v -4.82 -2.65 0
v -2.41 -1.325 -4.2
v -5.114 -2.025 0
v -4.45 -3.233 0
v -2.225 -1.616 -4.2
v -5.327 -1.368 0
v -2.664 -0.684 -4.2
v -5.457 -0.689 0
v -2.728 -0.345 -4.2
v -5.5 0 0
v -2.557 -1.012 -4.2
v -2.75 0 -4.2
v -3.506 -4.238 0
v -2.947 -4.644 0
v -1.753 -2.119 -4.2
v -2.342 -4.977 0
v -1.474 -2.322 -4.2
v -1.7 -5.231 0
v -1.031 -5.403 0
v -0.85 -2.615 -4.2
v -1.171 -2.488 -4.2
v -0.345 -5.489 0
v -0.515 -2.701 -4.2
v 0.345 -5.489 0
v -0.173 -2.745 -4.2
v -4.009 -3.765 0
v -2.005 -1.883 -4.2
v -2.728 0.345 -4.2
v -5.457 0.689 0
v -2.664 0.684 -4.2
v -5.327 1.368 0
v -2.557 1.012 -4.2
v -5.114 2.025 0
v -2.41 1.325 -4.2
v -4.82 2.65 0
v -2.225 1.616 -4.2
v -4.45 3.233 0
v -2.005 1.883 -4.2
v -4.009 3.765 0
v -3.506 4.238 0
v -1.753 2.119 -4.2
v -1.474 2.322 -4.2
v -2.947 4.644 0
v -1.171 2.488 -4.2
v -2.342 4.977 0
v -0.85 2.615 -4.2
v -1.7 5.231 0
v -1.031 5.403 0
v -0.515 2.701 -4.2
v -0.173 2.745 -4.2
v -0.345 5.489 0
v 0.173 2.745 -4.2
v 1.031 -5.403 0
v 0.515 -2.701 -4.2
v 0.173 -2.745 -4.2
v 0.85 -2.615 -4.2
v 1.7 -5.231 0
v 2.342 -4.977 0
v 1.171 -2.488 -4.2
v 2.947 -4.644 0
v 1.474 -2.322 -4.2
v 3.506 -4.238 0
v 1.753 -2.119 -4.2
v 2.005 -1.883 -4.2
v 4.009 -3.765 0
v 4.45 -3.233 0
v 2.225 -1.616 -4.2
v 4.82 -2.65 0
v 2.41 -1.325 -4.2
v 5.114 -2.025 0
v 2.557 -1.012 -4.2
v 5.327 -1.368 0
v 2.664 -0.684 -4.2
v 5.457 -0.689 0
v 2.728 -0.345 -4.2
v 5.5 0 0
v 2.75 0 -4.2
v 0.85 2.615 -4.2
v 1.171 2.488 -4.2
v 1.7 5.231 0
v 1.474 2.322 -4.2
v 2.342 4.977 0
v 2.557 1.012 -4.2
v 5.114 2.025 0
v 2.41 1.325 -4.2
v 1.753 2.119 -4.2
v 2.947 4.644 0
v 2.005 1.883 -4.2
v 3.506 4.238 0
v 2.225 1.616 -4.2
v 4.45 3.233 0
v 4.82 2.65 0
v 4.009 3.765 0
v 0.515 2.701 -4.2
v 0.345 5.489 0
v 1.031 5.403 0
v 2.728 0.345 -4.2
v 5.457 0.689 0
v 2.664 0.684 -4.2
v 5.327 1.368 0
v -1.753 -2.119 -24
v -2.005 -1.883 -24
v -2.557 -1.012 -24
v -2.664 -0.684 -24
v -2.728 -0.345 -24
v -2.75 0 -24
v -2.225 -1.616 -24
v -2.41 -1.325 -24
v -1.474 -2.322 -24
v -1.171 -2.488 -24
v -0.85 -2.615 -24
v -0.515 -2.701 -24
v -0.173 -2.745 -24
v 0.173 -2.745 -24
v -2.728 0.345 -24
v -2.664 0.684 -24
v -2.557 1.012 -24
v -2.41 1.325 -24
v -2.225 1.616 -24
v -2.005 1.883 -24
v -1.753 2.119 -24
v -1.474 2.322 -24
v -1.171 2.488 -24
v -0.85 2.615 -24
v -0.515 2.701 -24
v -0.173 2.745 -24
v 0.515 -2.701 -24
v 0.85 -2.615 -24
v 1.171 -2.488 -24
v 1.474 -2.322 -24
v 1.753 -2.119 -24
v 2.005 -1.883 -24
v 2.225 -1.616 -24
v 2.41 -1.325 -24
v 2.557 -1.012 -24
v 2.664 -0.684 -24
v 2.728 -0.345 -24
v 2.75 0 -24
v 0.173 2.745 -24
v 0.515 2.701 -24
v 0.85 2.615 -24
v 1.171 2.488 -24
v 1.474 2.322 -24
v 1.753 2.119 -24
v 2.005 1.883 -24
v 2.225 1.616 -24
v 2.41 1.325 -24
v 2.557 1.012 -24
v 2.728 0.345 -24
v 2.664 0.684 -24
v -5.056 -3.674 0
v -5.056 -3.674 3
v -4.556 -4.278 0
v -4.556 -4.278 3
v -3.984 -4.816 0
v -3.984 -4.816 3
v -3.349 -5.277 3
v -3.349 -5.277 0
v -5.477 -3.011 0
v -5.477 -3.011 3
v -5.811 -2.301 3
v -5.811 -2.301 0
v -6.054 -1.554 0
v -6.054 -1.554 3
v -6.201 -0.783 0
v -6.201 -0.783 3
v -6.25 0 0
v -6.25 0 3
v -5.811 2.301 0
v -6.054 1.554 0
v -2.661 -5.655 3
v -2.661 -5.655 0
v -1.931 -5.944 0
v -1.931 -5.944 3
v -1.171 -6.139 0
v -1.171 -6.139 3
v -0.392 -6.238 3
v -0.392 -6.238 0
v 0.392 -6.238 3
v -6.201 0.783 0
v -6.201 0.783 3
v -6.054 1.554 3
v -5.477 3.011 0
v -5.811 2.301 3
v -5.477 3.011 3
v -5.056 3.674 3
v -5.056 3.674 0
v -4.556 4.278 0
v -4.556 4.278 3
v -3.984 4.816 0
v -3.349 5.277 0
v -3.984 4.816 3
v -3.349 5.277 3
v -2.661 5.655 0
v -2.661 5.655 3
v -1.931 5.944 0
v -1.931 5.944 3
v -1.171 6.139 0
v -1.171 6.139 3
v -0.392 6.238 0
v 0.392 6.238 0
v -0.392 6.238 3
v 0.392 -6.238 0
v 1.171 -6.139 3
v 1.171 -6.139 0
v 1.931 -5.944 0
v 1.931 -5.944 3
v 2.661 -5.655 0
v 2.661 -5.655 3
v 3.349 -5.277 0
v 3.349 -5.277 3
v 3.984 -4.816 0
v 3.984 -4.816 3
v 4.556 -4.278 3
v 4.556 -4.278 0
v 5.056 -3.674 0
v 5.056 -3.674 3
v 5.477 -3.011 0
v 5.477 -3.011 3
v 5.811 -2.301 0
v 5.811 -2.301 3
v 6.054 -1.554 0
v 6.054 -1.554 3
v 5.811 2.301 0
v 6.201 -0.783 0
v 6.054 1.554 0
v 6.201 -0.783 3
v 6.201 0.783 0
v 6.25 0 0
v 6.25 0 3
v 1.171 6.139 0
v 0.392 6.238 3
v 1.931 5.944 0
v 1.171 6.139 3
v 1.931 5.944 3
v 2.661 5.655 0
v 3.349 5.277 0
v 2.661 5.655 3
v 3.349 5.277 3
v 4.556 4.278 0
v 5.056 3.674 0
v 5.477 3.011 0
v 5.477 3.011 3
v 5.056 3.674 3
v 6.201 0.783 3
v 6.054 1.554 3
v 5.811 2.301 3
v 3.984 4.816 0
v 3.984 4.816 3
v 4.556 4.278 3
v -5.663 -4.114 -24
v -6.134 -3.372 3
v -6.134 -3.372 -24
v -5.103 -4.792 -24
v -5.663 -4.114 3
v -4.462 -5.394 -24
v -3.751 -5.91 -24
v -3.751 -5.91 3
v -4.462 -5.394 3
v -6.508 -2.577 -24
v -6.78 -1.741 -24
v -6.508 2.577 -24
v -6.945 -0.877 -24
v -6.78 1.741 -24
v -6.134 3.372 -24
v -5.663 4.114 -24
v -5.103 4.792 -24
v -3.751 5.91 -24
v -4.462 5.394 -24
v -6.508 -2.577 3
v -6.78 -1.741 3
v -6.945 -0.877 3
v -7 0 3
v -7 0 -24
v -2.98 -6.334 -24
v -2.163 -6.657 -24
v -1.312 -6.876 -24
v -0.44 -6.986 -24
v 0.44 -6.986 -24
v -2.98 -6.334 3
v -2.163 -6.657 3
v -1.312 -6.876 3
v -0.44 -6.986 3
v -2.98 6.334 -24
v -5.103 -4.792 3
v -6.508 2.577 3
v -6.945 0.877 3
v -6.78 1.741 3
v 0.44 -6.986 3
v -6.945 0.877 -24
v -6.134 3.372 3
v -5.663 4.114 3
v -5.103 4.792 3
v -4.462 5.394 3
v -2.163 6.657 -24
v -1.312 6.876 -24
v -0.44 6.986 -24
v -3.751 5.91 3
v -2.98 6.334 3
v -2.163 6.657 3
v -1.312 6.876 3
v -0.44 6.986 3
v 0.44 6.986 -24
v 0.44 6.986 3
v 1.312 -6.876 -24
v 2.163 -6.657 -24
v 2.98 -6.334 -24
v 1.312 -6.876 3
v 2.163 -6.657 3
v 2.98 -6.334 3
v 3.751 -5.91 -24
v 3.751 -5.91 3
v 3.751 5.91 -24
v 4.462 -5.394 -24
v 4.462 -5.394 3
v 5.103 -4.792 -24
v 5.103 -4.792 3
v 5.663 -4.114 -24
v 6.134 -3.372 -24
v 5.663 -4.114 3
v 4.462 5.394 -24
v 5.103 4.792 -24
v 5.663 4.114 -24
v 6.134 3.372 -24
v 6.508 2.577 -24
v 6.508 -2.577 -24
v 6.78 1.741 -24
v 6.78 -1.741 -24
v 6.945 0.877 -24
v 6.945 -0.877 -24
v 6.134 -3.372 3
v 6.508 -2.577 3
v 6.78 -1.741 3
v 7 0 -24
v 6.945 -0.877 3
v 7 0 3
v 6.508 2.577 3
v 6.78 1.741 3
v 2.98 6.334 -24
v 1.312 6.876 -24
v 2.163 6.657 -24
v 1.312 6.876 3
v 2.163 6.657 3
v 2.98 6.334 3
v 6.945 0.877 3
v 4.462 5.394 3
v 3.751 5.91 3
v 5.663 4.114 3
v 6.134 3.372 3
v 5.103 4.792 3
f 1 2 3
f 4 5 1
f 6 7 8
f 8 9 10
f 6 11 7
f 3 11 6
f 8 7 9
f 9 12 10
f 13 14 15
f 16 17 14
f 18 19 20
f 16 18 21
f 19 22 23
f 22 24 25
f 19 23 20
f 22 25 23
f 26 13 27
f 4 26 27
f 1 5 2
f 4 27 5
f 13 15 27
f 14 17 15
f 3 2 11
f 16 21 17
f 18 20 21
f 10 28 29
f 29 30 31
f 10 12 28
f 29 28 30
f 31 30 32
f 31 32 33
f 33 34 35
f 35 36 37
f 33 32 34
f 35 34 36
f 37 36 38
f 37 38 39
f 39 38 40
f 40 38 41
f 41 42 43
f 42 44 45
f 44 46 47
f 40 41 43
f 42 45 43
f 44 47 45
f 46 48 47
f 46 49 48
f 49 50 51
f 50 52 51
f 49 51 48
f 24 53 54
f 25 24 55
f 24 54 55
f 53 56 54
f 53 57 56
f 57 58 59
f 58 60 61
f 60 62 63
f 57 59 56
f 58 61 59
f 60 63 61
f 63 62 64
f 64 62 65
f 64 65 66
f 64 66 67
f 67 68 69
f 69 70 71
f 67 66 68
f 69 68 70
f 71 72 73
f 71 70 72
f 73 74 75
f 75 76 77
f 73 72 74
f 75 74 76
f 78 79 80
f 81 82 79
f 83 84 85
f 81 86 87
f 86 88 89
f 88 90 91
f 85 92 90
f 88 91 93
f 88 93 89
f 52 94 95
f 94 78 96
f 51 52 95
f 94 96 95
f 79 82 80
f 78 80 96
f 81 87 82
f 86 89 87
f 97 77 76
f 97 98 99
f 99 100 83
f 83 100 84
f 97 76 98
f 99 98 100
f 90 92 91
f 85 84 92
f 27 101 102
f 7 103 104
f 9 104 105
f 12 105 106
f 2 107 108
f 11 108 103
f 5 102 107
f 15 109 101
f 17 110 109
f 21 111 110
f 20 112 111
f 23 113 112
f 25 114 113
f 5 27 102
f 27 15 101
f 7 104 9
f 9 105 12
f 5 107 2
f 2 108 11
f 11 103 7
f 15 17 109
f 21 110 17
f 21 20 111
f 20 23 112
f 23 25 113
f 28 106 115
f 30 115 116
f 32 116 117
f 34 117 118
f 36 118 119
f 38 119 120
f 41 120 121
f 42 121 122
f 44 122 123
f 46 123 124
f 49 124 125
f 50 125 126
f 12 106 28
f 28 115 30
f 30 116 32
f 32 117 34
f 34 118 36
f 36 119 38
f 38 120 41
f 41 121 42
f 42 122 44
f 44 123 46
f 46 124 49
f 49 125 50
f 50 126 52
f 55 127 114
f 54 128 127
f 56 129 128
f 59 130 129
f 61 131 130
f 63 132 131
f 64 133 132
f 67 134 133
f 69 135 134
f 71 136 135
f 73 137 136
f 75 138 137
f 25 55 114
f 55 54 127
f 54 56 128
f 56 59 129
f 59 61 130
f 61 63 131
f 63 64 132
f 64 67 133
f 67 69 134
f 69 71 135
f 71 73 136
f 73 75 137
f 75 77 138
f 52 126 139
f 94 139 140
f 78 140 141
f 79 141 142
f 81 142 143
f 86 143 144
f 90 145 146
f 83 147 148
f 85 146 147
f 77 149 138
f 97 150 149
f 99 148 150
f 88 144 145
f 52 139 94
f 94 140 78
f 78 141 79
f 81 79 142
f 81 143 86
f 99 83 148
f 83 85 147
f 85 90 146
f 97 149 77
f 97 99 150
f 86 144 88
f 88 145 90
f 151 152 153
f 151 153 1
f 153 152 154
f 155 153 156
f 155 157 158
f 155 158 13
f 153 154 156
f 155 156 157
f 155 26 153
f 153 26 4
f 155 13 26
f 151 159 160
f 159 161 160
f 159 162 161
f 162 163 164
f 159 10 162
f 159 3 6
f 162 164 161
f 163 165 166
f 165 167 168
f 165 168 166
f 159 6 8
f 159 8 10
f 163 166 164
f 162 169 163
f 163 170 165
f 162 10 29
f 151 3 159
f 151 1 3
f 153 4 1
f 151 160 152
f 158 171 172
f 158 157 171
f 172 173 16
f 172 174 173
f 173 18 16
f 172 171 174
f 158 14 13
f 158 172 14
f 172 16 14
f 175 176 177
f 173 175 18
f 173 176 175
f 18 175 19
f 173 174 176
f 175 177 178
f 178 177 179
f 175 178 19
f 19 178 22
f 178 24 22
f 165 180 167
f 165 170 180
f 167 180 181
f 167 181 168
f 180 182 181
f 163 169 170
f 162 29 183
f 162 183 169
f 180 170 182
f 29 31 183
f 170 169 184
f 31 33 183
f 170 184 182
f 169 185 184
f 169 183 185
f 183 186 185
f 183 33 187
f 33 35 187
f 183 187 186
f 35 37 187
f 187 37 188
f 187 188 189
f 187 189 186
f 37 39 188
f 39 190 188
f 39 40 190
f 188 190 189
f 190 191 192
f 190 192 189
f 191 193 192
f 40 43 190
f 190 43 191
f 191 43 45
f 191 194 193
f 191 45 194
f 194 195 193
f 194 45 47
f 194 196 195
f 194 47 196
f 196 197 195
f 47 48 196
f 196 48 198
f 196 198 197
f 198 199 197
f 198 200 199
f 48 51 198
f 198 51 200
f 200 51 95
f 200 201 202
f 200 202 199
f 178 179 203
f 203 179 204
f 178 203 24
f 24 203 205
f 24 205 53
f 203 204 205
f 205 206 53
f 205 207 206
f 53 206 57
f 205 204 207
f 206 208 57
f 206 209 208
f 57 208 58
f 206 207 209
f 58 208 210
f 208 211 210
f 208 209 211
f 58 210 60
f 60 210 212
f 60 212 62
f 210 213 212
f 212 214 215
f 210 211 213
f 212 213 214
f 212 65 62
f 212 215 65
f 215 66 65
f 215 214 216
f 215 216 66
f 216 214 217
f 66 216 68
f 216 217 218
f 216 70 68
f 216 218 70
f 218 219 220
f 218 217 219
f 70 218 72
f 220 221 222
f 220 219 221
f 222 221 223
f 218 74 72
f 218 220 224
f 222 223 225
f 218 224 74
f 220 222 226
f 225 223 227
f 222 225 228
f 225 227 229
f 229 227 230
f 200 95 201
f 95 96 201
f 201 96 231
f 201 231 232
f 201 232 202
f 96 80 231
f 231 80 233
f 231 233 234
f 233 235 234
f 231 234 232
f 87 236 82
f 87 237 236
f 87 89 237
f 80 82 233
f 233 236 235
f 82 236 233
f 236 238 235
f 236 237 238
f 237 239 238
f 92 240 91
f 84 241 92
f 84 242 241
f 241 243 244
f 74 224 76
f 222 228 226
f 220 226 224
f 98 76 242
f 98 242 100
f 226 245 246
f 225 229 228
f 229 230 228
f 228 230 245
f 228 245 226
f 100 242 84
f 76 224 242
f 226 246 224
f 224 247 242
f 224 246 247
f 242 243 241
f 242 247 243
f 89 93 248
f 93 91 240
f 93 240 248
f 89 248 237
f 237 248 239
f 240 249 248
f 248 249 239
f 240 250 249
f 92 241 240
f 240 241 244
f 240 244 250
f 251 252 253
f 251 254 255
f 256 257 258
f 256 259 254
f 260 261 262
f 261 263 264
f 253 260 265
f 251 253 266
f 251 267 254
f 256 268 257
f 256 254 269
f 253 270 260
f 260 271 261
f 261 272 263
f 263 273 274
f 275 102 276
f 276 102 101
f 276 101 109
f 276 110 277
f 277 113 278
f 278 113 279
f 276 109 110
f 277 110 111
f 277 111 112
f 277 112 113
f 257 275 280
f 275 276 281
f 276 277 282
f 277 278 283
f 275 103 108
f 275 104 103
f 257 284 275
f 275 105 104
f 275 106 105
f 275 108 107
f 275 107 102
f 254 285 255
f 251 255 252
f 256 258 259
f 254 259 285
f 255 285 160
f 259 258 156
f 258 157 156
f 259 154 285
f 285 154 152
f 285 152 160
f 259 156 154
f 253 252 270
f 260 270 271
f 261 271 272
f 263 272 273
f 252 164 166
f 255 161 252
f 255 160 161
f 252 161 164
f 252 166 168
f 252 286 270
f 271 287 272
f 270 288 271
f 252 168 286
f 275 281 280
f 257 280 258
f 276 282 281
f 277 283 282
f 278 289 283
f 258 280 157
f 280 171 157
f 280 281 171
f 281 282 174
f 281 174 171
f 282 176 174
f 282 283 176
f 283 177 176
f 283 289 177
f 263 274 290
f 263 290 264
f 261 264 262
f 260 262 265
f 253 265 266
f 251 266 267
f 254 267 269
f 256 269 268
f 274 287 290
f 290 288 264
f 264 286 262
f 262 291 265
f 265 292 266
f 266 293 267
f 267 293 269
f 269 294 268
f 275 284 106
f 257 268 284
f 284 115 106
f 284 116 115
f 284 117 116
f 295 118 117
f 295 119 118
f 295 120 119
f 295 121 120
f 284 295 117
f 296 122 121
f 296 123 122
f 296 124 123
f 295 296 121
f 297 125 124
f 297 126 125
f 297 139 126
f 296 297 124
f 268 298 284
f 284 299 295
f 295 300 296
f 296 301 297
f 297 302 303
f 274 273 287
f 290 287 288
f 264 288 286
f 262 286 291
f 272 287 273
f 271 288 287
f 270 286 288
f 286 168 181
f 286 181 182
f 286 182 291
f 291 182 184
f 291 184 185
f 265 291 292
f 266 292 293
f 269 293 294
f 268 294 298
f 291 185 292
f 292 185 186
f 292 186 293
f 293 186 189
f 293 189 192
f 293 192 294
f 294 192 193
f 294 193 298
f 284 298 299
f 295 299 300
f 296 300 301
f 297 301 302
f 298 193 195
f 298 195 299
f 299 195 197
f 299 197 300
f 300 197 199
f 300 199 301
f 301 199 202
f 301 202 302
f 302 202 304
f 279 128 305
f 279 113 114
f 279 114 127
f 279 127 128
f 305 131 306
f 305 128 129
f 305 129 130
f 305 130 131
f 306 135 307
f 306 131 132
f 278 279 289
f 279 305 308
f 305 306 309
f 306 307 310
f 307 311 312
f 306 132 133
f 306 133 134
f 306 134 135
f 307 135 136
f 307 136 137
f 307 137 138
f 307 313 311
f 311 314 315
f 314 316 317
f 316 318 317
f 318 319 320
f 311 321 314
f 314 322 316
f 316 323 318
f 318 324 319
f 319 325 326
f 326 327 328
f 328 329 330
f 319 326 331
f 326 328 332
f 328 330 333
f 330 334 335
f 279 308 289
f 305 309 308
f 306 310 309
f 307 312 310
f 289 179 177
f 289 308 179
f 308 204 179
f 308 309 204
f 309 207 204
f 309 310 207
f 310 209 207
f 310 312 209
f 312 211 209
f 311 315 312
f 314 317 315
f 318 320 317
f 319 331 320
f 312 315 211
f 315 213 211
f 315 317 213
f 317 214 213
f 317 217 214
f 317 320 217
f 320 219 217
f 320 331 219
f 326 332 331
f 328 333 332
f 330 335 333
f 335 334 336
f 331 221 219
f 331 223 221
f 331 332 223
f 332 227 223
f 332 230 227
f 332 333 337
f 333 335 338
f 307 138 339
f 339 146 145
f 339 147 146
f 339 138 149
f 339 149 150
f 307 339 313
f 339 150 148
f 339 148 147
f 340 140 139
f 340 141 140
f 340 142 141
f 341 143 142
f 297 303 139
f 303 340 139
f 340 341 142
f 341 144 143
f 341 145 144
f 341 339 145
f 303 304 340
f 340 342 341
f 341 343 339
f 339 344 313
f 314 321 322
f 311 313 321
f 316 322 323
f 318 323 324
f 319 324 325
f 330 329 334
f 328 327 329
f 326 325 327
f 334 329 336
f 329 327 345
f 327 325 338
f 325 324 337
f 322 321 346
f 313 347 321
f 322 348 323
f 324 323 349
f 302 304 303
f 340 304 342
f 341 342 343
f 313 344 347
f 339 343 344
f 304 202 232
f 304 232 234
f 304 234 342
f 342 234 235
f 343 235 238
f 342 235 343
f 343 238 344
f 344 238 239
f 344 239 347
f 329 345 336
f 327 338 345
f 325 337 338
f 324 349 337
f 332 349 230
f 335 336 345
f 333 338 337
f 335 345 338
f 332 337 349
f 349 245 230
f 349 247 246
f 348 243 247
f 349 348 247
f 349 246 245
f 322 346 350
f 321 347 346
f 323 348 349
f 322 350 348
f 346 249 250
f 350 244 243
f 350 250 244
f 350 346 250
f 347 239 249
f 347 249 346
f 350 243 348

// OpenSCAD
$fn = 50;

difference() {
	union() {
		translate(v = [0, 0, -24.0]) {
			cylinder(h = 27, r = 7.0);
		}
	}
	union() {
		translate(v = [0, 0, 0]) {
			rotate(a = [0, 0, 0]) {
				difference() {
					union() {
						translate(v = [0, 0, -27.0]) {
							cylinder(h = 27, r = 2.25);
						}
						translate(v = [0, 0, -4.2]) {
							cylinder(h = 4.2, r1 = 2.75, r2 = 5.5);
						}
						translate(v = [0, 0, -27.0]) {
							cylinder(h = 27, r = 2.75);
						}
						translate(v = [0, 0, -27.0]) {
							cylinder(h = 27, r = 2.25);
						}
					}
					union();
				}
			}
		}
		#cylinder(h = 3, r = 6.25);
	}
}
